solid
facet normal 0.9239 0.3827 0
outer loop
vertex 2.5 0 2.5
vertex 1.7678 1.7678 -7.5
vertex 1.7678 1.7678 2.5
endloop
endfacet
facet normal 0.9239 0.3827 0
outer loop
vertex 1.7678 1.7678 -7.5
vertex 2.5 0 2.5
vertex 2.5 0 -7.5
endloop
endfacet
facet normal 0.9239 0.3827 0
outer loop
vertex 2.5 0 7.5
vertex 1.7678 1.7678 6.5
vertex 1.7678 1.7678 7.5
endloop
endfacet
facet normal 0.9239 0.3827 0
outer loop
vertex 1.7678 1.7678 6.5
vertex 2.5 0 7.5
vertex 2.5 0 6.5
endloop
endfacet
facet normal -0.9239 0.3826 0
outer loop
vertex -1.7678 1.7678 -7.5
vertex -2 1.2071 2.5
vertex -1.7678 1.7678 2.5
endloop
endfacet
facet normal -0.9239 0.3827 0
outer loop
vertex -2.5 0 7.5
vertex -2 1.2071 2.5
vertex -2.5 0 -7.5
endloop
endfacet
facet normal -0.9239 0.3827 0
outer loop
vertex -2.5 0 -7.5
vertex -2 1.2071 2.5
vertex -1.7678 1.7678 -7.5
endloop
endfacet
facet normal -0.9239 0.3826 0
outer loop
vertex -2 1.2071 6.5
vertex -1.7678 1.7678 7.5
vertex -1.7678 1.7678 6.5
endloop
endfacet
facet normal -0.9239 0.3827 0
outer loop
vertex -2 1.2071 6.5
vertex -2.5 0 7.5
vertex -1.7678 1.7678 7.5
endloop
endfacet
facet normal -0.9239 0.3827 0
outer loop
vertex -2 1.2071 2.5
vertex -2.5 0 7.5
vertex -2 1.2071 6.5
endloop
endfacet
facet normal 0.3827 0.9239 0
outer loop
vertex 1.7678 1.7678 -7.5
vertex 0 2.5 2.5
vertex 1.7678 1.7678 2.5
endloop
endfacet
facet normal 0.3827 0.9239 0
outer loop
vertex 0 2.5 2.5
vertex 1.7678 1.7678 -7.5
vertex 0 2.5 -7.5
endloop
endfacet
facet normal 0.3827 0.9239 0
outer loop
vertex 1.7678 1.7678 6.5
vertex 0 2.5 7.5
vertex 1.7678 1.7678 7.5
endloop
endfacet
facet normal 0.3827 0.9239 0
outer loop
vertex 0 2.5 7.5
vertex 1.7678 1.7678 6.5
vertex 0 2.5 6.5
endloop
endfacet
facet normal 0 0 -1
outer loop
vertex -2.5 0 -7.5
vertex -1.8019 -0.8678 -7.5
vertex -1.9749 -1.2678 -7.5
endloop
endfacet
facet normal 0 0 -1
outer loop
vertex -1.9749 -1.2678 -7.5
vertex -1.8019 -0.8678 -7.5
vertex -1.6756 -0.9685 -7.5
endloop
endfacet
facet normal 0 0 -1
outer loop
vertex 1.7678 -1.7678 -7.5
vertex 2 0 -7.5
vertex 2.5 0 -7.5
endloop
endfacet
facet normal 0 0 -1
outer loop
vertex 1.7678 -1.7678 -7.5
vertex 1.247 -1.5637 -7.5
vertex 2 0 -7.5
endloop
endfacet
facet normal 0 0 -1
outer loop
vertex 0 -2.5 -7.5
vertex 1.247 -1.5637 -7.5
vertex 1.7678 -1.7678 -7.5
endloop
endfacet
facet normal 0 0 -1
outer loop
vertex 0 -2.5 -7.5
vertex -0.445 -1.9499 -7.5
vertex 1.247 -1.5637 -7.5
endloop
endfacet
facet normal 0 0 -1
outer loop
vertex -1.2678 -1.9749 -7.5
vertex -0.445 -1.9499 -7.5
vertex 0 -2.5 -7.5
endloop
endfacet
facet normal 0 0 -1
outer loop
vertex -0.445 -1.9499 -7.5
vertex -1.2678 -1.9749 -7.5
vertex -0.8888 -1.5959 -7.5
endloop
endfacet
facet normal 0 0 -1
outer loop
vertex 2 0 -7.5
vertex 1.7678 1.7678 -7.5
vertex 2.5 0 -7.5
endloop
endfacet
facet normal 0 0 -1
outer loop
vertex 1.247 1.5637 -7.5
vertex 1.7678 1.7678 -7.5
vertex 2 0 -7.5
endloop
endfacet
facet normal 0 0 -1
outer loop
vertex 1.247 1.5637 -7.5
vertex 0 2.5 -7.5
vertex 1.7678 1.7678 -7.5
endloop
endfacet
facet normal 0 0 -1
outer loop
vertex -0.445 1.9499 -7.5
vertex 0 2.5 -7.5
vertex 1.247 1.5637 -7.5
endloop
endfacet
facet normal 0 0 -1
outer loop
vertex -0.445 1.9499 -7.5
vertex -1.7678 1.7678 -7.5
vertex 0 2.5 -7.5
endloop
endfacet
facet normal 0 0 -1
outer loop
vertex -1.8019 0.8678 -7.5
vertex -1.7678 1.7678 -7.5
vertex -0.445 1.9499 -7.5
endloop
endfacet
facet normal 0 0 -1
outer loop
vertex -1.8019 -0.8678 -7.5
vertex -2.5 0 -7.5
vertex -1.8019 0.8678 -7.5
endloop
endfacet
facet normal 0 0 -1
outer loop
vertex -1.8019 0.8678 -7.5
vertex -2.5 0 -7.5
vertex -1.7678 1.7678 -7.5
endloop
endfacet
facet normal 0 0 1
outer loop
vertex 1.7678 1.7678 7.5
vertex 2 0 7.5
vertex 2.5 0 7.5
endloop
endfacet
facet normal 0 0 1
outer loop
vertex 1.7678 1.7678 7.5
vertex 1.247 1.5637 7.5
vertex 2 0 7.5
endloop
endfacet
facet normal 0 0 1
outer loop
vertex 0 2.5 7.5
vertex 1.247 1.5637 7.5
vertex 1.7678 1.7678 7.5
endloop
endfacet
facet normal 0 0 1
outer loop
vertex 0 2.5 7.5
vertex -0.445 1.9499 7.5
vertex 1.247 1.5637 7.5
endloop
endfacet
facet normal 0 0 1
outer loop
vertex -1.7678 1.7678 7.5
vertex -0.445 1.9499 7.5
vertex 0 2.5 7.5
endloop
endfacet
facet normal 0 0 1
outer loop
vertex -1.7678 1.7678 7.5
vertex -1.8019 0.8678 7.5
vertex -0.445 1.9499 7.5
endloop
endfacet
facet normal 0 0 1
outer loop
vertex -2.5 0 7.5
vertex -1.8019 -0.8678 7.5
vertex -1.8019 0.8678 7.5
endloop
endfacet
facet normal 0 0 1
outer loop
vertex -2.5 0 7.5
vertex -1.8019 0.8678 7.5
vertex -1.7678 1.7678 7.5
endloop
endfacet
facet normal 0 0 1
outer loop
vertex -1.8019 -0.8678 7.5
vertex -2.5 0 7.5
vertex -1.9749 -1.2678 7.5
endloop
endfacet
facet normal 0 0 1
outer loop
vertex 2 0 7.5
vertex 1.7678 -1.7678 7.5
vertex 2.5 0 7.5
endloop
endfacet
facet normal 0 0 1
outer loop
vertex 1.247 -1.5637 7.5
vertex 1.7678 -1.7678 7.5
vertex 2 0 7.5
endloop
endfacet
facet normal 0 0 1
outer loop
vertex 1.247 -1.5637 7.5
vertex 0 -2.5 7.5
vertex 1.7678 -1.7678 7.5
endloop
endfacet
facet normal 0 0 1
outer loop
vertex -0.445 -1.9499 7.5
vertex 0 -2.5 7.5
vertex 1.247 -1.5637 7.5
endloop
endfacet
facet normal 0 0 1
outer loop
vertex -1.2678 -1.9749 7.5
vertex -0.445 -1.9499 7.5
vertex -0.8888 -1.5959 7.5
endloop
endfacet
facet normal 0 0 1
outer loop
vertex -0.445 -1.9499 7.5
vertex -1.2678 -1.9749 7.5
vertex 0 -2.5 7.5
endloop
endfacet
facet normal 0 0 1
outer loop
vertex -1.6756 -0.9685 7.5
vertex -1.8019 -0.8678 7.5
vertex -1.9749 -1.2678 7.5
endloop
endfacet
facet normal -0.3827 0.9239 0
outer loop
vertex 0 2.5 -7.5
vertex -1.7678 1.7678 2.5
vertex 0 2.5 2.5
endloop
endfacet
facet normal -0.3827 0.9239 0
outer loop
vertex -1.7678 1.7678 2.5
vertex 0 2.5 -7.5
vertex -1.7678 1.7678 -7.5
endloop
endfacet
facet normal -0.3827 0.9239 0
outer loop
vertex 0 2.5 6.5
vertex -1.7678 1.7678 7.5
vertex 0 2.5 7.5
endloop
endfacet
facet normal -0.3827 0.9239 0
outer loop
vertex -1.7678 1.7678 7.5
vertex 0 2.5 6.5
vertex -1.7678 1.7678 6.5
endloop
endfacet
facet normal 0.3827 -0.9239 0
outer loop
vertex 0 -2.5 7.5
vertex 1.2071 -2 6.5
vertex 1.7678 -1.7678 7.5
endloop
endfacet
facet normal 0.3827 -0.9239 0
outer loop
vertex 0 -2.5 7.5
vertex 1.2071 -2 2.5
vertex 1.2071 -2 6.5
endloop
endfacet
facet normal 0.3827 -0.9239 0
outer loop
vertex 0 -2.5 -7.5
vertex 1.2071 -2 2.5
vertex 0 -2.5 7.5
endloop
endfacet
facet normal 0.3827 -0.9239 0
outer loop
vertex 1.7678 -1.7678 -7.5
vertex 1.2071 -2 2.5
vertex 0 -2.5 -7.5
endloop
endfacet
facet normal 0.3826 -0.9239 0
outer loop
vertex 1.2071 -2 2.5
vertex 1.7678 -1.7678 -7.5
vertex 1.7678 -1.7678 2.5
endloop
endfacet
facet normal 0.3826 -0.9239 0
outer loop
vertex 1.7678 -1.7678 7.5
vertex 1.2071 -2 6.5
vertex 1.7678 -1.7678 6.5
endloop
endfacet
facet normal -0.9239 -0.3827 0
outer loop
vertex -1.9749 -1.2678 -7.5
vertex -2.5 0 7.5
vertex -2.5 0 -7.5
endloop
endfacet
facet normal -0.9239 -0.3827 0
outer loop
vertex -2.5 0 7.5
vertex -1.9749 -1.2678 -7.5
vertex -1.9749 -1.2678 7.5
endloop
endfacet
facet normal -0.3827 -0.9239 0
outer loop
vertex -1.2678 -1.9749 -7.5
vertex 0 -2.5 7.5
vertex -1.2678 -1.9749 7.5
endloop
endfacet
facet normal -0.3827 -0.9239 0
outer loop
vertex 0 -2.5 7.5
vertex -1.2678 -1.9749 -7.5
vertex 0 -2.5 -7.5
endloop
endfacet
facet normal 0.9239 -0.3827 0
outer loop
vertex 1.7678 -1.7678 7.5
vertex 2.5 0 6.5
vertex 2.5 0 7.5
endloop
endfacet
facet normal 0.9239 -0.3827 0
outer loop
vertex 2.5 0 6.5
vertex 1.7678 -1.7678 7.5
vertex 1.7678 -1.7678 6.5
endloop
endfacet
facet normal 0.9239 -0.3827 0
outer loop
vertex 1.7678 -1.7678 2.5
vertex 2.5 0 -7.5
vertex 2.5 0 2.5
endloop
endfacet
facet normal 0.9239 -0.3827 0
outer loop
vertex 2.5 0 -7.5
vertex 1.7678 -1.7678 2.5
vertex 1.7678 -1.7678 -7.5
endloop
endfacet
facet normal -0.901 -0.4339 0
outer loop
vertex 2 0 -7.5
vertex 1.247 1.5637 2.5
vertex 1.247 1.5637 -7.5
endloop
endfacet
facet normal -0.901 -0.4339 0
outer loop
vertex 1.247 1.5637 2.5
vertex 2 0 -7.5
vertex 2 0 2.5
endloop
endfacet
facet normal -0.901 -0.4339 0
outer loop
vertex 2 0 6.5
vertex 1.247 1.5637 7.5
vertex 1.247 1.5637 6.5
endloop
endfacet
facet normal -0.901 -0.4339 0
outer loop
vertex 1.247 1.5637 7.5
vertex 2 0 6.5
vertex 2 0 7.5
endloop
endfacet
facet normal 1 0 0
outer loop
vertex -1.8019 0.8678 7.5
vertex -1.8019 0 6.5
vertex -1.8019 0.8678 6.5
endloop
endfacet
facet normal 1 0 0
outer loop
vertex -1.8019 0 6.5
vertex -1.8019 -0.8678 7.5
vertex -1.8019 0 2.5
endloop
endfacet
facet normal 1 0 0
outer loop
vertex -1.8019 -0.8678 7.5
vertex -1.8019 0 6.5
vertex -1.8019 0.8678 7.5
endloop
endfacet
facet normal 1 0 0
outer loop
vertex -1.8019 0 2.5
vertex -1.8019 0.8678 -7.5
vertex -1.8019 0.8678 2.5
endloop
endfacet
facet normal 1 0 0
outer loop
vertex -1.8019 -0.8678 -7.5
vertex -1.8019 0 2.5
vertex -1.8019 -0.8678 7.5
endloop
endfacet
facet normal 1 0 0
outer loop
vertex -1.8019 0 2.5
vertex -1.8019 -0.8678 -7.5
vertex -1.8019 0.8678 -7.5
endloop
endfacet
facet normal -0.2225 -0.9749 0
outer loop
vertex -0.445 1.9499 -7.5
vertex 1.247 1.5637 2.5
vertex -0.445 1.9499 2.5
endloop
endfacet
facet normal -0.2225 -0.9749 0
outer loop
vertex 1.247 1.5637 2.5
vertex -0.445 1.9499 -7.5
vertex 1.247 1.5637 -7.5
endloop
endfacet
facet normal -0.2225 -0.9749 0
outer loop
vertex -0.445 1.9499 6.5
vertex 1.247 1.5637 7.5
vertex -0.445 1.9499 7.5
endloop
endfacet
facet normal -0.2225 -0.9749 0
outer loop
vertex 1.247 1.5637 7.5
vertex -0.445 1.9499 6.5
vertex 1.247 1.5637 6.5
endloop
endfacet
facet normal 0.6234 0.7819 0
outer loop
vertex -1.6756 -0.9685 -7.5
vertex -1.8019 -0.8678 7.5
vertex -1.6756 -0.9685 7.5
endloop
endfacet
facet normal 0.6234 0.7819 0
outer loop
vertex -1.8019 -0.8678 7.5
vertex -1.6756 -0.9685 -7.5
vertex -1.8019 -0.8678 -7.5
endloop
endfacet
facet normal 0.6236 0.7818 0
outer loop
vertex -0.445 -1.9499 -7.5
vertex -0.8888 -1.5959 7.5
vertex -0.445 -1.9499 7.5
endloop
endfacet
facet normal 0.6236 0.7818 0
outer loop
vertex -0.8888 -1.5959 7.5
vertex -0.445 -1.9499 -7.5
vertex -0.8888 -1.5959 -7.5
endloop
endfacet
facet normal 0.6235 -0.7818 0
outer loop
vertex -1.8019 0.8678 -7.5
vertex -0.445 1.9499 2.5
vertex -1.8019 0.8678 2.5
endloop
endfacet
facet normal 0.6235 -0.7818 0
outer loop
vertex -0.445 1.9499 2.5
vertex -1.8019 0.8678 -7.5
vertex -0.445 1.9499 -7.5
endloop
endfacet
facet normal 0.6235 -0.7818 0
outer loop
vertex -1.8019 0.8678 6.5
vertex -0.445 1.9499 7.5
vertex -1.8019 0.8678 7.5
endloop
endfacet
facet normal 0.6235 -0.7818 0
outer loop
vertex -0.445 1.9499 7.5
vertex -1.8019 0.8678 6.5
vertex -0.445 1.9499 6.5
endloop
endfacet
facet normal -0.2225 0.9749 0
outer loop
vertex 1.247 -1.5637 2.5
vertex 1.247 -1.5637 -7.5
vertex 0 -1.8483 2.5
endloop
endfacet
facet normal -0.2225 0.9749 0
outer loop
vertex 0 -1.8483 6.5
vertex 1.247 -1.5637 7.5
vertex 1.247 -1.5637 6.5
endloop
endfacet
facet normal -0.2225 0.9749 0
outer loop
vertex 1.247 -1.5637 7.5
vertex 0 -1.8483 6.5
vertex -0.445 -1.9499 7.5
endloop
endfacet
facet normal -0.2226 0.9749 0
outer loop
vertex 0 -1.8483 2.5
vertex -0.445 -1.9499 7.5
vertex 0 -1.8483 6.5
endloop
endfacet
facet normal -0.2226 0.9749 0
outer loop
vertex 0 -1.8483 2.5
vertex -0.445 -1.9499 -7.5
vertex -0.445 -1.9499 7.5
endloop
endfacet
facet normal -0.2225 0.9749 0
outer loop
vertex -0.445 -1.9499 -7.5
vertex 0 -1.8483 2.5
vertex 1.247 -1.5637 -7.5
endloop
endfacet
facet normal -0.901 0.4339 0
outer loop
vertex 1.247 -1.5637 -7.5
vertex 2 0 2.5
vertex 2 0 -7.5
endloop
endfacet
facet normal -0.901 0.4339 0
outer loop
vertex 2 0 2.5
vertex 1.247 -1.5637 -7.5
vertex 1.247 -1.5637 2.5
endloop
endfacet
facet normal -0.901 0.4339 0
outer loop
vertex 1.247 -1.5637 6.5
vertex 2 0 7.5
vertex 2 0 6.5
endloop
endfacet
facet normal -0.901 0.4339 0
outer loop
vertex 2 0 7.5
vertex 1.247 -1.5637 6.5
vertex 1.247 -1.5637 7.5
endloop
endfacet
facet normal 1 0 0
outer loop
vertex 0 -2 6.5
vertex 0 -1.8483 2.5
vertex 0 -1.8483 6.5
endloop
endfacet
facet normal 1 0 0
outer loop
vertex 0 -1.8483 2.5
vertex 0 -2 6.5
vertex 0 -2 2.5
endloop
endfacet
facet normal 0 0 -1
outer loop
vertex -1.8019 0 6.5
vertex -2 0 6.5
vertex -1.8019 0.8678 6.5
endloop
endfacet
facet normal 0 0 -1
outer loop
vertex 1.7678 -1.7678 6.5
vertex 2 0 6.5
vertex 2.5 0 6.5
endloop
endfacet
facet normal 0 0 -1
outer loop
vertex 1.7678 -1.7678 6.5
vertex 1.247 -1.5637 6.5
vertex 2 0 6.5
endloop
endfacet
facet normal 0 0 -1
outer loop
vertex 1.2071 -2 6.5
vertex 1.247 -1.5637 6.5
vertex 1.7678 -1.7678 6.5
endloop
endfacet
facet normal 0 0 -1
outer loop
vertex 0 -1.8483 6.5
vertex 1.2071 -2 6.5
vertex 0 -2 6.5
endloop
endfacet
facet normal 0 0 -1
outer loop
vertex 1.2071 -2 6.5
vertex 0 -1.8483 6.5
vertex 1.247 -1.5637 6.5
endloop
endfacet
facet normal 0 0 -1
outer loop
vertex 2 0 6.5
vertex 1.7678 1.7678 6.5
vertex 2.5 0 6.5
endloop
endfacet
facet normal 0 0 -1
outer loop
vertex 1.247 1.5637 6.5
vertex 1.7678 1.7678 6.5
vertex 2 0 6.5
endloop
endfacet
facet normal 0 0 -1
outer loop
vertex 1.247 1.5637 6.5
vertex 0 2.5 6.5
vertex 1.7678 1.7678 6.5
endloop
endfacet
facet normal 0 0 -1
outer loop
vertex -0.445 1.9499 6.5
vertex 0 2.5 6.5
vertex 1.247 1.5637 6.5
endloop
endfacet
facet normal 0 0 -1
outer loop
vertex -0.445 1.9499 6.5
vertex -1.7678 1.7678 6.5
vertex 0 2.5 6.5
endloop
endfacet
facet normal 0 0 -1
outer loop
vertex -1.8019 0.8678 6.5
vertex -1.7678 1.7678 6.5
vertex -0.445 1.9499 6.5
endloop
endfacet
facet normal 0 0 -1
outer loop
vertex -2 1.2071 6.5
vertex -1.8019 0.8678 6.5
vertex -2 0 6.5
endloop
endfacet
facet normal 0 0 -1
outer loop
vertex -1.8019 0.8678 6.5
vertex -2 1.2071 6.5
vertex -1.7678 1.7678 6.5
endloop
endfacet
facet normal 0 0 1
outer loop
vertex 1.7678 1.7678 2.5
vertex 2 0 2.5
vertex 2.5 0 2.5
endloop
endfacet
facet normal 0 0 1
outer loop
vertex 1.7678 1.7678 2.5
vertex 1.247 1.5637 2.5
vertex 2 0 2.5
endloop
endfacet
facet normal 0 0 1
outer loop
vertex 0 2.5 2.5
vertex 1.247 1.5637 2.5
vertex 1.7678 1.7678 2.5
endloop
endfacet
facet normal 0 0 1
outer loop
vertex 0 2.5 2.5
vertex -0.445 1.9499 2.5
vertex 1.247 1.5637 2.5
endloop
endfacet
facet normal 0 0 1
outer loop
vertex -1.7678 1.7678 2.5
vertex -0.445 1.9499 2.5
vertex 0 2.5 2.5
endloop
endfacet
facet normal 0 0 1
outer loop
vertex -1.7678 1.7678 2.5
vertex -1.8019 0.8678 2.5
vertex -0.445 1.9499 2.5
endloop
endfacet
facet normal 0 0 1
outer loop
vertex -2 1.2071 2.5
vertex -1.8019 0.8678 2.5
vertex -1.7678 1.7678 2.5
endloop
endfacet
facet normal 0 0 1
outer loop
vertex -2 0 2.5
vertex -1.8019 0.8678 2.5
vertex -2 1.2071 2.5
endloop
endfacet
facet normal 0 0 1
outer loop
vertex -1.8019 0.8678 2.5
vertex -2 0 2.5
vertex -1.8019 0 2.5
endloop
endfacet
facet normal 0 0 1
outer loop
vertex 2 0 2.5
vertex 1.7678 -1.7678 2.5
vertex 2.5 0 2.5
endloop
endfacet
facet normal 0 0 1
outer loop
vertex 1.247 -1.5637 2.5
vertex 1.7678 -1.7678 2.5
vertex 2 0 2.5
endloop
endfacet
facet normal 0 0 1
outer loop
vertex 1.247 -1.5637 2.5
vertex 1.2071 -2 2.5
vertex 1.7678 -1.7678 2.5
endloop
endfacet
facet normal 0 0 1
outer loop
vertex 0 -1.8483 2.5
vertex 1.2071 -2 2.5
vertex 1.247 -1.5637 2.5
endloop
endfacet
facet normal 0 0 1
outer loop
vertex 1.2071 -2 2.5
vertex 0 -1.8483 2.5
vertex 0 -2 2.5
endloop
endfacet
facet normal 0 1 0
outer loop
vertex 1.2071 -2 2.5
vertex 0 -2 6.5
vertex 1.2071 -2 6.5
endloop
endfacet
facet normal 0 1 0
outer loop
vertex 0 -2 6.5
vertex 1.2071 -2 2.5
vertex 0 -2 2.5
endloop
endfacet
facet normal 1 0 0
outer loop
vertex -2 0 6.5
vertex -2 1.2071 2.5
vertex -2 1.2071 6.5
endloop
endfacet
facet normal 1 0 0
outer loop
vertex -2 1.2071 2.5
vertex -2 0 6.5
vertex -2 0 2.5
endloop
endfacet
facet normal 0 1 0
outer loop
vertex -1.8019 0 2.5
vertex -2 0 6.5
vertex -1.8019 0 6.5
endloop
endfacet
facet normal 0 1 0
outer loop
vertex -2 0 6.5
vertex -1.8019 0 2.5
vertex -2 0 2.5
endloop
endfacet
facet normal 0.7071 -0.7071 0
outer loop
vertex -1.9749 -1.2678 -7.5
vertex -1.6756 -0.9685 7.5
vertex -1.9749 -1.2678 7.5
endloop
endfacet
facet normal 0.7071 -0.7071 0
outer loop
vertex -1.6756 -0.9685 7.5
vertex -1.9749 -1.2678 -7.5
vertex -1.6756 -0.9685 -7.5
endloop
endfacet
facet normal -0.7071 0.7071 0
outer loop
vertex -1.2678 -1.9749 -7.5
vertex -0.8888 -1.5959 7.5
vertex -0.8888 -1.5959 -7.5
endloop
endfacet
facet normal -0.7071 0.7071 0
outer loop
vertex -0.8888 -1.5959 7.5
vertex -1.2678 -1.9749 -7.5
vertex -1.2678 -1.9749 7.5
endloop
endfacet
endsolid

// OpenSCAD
/**
 * Create an adapter for connecting a GT2 pulley to Fischertechnik axis with 4mm diameter.
 *
 * @author Brian Schroeder
 * @since 12.05.2020
 */

module axisAdapter5mmTo4mm() {

    difference() {
        
        height=15;
        hHole=1;
        dOuter=5;
        dInner=4;
        dHole=4;
        dGap=1;
        rOuter=dOuter/2;
        rInner=dInner/2;
        hHoleCenter=height/2 - hHole - dHole/2;
        cylinder(r=rOuter, h=height, center=true);
        cylinder(r=rInner, h=height, center=true);
        translate([0, 0, hHoleCenter])translate([rOuter/2, 0, 0])cube(size=[rOuter, dHole, dHole], center=true);
        translate([0, 0, hHoleCenter])rotate([0, 0, 90])translate([rOuter/2, 0, 0])cube(size=[rOuter, dHole, dHole], center=true);
        rotate([0, 0, 225])translate([rOuter/2, 0, 0])cube(size=[rOuter, dGap, height], center=true);
    }
}

axisAdapter5mmTo4mm();
